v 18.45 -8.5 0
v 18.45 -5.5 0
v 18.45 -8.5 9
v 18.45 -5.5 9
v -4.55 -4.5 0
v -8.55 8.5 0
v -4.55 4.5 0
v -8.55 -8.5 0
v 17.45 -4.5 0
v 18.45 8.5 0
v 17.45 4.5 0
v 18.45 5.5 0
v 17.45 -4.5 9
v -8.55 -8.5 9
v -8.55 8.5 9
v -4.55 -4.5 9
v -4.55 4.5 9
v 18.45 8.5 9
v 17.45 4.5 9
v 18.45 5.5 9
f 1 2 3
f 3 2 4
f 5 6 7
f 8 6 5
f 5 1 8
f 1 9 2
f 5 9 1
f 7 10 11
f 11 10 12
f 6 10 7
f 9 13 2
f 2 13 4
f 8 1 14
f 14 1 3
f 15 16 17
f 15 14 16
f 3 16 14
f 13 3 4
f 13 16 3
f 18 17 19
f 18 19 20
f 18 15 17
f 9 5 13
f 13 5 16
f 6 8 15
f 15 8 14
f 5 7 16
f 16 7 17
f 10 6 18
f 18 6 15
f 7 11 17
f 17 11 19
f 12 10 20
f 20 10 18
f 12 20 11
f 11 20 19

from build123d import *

# Parameters (mm, degrees)
PAD_DEPTH    = 9
CHAMFER_SIZE = 1


with BuildPart() as part:
    # Sketch → Pad (new body)
    with BuildSketch(Plane.XY):
        Polygon((18.45, 8.5), (-8.55, 8.5), (-8.55, -8.5), (18.45, -8.5), (18.45, -4.5), (-4.55, -4.5), (-4.55, 4.5), (18.45, 4.5), align=None)
    extrude(amount=PAD_DEPTH)

    # Chamfer
    chamfer_edges = [part.edges().sort_by_distance(p)[0] for p in [
        (18.45, 4.5, 4.5),
        (18.45, -4.5, 4.5),
    ]]
    chamfer(chamfer_edges, length=CHAMFER_SIZE)


solid = part.part
